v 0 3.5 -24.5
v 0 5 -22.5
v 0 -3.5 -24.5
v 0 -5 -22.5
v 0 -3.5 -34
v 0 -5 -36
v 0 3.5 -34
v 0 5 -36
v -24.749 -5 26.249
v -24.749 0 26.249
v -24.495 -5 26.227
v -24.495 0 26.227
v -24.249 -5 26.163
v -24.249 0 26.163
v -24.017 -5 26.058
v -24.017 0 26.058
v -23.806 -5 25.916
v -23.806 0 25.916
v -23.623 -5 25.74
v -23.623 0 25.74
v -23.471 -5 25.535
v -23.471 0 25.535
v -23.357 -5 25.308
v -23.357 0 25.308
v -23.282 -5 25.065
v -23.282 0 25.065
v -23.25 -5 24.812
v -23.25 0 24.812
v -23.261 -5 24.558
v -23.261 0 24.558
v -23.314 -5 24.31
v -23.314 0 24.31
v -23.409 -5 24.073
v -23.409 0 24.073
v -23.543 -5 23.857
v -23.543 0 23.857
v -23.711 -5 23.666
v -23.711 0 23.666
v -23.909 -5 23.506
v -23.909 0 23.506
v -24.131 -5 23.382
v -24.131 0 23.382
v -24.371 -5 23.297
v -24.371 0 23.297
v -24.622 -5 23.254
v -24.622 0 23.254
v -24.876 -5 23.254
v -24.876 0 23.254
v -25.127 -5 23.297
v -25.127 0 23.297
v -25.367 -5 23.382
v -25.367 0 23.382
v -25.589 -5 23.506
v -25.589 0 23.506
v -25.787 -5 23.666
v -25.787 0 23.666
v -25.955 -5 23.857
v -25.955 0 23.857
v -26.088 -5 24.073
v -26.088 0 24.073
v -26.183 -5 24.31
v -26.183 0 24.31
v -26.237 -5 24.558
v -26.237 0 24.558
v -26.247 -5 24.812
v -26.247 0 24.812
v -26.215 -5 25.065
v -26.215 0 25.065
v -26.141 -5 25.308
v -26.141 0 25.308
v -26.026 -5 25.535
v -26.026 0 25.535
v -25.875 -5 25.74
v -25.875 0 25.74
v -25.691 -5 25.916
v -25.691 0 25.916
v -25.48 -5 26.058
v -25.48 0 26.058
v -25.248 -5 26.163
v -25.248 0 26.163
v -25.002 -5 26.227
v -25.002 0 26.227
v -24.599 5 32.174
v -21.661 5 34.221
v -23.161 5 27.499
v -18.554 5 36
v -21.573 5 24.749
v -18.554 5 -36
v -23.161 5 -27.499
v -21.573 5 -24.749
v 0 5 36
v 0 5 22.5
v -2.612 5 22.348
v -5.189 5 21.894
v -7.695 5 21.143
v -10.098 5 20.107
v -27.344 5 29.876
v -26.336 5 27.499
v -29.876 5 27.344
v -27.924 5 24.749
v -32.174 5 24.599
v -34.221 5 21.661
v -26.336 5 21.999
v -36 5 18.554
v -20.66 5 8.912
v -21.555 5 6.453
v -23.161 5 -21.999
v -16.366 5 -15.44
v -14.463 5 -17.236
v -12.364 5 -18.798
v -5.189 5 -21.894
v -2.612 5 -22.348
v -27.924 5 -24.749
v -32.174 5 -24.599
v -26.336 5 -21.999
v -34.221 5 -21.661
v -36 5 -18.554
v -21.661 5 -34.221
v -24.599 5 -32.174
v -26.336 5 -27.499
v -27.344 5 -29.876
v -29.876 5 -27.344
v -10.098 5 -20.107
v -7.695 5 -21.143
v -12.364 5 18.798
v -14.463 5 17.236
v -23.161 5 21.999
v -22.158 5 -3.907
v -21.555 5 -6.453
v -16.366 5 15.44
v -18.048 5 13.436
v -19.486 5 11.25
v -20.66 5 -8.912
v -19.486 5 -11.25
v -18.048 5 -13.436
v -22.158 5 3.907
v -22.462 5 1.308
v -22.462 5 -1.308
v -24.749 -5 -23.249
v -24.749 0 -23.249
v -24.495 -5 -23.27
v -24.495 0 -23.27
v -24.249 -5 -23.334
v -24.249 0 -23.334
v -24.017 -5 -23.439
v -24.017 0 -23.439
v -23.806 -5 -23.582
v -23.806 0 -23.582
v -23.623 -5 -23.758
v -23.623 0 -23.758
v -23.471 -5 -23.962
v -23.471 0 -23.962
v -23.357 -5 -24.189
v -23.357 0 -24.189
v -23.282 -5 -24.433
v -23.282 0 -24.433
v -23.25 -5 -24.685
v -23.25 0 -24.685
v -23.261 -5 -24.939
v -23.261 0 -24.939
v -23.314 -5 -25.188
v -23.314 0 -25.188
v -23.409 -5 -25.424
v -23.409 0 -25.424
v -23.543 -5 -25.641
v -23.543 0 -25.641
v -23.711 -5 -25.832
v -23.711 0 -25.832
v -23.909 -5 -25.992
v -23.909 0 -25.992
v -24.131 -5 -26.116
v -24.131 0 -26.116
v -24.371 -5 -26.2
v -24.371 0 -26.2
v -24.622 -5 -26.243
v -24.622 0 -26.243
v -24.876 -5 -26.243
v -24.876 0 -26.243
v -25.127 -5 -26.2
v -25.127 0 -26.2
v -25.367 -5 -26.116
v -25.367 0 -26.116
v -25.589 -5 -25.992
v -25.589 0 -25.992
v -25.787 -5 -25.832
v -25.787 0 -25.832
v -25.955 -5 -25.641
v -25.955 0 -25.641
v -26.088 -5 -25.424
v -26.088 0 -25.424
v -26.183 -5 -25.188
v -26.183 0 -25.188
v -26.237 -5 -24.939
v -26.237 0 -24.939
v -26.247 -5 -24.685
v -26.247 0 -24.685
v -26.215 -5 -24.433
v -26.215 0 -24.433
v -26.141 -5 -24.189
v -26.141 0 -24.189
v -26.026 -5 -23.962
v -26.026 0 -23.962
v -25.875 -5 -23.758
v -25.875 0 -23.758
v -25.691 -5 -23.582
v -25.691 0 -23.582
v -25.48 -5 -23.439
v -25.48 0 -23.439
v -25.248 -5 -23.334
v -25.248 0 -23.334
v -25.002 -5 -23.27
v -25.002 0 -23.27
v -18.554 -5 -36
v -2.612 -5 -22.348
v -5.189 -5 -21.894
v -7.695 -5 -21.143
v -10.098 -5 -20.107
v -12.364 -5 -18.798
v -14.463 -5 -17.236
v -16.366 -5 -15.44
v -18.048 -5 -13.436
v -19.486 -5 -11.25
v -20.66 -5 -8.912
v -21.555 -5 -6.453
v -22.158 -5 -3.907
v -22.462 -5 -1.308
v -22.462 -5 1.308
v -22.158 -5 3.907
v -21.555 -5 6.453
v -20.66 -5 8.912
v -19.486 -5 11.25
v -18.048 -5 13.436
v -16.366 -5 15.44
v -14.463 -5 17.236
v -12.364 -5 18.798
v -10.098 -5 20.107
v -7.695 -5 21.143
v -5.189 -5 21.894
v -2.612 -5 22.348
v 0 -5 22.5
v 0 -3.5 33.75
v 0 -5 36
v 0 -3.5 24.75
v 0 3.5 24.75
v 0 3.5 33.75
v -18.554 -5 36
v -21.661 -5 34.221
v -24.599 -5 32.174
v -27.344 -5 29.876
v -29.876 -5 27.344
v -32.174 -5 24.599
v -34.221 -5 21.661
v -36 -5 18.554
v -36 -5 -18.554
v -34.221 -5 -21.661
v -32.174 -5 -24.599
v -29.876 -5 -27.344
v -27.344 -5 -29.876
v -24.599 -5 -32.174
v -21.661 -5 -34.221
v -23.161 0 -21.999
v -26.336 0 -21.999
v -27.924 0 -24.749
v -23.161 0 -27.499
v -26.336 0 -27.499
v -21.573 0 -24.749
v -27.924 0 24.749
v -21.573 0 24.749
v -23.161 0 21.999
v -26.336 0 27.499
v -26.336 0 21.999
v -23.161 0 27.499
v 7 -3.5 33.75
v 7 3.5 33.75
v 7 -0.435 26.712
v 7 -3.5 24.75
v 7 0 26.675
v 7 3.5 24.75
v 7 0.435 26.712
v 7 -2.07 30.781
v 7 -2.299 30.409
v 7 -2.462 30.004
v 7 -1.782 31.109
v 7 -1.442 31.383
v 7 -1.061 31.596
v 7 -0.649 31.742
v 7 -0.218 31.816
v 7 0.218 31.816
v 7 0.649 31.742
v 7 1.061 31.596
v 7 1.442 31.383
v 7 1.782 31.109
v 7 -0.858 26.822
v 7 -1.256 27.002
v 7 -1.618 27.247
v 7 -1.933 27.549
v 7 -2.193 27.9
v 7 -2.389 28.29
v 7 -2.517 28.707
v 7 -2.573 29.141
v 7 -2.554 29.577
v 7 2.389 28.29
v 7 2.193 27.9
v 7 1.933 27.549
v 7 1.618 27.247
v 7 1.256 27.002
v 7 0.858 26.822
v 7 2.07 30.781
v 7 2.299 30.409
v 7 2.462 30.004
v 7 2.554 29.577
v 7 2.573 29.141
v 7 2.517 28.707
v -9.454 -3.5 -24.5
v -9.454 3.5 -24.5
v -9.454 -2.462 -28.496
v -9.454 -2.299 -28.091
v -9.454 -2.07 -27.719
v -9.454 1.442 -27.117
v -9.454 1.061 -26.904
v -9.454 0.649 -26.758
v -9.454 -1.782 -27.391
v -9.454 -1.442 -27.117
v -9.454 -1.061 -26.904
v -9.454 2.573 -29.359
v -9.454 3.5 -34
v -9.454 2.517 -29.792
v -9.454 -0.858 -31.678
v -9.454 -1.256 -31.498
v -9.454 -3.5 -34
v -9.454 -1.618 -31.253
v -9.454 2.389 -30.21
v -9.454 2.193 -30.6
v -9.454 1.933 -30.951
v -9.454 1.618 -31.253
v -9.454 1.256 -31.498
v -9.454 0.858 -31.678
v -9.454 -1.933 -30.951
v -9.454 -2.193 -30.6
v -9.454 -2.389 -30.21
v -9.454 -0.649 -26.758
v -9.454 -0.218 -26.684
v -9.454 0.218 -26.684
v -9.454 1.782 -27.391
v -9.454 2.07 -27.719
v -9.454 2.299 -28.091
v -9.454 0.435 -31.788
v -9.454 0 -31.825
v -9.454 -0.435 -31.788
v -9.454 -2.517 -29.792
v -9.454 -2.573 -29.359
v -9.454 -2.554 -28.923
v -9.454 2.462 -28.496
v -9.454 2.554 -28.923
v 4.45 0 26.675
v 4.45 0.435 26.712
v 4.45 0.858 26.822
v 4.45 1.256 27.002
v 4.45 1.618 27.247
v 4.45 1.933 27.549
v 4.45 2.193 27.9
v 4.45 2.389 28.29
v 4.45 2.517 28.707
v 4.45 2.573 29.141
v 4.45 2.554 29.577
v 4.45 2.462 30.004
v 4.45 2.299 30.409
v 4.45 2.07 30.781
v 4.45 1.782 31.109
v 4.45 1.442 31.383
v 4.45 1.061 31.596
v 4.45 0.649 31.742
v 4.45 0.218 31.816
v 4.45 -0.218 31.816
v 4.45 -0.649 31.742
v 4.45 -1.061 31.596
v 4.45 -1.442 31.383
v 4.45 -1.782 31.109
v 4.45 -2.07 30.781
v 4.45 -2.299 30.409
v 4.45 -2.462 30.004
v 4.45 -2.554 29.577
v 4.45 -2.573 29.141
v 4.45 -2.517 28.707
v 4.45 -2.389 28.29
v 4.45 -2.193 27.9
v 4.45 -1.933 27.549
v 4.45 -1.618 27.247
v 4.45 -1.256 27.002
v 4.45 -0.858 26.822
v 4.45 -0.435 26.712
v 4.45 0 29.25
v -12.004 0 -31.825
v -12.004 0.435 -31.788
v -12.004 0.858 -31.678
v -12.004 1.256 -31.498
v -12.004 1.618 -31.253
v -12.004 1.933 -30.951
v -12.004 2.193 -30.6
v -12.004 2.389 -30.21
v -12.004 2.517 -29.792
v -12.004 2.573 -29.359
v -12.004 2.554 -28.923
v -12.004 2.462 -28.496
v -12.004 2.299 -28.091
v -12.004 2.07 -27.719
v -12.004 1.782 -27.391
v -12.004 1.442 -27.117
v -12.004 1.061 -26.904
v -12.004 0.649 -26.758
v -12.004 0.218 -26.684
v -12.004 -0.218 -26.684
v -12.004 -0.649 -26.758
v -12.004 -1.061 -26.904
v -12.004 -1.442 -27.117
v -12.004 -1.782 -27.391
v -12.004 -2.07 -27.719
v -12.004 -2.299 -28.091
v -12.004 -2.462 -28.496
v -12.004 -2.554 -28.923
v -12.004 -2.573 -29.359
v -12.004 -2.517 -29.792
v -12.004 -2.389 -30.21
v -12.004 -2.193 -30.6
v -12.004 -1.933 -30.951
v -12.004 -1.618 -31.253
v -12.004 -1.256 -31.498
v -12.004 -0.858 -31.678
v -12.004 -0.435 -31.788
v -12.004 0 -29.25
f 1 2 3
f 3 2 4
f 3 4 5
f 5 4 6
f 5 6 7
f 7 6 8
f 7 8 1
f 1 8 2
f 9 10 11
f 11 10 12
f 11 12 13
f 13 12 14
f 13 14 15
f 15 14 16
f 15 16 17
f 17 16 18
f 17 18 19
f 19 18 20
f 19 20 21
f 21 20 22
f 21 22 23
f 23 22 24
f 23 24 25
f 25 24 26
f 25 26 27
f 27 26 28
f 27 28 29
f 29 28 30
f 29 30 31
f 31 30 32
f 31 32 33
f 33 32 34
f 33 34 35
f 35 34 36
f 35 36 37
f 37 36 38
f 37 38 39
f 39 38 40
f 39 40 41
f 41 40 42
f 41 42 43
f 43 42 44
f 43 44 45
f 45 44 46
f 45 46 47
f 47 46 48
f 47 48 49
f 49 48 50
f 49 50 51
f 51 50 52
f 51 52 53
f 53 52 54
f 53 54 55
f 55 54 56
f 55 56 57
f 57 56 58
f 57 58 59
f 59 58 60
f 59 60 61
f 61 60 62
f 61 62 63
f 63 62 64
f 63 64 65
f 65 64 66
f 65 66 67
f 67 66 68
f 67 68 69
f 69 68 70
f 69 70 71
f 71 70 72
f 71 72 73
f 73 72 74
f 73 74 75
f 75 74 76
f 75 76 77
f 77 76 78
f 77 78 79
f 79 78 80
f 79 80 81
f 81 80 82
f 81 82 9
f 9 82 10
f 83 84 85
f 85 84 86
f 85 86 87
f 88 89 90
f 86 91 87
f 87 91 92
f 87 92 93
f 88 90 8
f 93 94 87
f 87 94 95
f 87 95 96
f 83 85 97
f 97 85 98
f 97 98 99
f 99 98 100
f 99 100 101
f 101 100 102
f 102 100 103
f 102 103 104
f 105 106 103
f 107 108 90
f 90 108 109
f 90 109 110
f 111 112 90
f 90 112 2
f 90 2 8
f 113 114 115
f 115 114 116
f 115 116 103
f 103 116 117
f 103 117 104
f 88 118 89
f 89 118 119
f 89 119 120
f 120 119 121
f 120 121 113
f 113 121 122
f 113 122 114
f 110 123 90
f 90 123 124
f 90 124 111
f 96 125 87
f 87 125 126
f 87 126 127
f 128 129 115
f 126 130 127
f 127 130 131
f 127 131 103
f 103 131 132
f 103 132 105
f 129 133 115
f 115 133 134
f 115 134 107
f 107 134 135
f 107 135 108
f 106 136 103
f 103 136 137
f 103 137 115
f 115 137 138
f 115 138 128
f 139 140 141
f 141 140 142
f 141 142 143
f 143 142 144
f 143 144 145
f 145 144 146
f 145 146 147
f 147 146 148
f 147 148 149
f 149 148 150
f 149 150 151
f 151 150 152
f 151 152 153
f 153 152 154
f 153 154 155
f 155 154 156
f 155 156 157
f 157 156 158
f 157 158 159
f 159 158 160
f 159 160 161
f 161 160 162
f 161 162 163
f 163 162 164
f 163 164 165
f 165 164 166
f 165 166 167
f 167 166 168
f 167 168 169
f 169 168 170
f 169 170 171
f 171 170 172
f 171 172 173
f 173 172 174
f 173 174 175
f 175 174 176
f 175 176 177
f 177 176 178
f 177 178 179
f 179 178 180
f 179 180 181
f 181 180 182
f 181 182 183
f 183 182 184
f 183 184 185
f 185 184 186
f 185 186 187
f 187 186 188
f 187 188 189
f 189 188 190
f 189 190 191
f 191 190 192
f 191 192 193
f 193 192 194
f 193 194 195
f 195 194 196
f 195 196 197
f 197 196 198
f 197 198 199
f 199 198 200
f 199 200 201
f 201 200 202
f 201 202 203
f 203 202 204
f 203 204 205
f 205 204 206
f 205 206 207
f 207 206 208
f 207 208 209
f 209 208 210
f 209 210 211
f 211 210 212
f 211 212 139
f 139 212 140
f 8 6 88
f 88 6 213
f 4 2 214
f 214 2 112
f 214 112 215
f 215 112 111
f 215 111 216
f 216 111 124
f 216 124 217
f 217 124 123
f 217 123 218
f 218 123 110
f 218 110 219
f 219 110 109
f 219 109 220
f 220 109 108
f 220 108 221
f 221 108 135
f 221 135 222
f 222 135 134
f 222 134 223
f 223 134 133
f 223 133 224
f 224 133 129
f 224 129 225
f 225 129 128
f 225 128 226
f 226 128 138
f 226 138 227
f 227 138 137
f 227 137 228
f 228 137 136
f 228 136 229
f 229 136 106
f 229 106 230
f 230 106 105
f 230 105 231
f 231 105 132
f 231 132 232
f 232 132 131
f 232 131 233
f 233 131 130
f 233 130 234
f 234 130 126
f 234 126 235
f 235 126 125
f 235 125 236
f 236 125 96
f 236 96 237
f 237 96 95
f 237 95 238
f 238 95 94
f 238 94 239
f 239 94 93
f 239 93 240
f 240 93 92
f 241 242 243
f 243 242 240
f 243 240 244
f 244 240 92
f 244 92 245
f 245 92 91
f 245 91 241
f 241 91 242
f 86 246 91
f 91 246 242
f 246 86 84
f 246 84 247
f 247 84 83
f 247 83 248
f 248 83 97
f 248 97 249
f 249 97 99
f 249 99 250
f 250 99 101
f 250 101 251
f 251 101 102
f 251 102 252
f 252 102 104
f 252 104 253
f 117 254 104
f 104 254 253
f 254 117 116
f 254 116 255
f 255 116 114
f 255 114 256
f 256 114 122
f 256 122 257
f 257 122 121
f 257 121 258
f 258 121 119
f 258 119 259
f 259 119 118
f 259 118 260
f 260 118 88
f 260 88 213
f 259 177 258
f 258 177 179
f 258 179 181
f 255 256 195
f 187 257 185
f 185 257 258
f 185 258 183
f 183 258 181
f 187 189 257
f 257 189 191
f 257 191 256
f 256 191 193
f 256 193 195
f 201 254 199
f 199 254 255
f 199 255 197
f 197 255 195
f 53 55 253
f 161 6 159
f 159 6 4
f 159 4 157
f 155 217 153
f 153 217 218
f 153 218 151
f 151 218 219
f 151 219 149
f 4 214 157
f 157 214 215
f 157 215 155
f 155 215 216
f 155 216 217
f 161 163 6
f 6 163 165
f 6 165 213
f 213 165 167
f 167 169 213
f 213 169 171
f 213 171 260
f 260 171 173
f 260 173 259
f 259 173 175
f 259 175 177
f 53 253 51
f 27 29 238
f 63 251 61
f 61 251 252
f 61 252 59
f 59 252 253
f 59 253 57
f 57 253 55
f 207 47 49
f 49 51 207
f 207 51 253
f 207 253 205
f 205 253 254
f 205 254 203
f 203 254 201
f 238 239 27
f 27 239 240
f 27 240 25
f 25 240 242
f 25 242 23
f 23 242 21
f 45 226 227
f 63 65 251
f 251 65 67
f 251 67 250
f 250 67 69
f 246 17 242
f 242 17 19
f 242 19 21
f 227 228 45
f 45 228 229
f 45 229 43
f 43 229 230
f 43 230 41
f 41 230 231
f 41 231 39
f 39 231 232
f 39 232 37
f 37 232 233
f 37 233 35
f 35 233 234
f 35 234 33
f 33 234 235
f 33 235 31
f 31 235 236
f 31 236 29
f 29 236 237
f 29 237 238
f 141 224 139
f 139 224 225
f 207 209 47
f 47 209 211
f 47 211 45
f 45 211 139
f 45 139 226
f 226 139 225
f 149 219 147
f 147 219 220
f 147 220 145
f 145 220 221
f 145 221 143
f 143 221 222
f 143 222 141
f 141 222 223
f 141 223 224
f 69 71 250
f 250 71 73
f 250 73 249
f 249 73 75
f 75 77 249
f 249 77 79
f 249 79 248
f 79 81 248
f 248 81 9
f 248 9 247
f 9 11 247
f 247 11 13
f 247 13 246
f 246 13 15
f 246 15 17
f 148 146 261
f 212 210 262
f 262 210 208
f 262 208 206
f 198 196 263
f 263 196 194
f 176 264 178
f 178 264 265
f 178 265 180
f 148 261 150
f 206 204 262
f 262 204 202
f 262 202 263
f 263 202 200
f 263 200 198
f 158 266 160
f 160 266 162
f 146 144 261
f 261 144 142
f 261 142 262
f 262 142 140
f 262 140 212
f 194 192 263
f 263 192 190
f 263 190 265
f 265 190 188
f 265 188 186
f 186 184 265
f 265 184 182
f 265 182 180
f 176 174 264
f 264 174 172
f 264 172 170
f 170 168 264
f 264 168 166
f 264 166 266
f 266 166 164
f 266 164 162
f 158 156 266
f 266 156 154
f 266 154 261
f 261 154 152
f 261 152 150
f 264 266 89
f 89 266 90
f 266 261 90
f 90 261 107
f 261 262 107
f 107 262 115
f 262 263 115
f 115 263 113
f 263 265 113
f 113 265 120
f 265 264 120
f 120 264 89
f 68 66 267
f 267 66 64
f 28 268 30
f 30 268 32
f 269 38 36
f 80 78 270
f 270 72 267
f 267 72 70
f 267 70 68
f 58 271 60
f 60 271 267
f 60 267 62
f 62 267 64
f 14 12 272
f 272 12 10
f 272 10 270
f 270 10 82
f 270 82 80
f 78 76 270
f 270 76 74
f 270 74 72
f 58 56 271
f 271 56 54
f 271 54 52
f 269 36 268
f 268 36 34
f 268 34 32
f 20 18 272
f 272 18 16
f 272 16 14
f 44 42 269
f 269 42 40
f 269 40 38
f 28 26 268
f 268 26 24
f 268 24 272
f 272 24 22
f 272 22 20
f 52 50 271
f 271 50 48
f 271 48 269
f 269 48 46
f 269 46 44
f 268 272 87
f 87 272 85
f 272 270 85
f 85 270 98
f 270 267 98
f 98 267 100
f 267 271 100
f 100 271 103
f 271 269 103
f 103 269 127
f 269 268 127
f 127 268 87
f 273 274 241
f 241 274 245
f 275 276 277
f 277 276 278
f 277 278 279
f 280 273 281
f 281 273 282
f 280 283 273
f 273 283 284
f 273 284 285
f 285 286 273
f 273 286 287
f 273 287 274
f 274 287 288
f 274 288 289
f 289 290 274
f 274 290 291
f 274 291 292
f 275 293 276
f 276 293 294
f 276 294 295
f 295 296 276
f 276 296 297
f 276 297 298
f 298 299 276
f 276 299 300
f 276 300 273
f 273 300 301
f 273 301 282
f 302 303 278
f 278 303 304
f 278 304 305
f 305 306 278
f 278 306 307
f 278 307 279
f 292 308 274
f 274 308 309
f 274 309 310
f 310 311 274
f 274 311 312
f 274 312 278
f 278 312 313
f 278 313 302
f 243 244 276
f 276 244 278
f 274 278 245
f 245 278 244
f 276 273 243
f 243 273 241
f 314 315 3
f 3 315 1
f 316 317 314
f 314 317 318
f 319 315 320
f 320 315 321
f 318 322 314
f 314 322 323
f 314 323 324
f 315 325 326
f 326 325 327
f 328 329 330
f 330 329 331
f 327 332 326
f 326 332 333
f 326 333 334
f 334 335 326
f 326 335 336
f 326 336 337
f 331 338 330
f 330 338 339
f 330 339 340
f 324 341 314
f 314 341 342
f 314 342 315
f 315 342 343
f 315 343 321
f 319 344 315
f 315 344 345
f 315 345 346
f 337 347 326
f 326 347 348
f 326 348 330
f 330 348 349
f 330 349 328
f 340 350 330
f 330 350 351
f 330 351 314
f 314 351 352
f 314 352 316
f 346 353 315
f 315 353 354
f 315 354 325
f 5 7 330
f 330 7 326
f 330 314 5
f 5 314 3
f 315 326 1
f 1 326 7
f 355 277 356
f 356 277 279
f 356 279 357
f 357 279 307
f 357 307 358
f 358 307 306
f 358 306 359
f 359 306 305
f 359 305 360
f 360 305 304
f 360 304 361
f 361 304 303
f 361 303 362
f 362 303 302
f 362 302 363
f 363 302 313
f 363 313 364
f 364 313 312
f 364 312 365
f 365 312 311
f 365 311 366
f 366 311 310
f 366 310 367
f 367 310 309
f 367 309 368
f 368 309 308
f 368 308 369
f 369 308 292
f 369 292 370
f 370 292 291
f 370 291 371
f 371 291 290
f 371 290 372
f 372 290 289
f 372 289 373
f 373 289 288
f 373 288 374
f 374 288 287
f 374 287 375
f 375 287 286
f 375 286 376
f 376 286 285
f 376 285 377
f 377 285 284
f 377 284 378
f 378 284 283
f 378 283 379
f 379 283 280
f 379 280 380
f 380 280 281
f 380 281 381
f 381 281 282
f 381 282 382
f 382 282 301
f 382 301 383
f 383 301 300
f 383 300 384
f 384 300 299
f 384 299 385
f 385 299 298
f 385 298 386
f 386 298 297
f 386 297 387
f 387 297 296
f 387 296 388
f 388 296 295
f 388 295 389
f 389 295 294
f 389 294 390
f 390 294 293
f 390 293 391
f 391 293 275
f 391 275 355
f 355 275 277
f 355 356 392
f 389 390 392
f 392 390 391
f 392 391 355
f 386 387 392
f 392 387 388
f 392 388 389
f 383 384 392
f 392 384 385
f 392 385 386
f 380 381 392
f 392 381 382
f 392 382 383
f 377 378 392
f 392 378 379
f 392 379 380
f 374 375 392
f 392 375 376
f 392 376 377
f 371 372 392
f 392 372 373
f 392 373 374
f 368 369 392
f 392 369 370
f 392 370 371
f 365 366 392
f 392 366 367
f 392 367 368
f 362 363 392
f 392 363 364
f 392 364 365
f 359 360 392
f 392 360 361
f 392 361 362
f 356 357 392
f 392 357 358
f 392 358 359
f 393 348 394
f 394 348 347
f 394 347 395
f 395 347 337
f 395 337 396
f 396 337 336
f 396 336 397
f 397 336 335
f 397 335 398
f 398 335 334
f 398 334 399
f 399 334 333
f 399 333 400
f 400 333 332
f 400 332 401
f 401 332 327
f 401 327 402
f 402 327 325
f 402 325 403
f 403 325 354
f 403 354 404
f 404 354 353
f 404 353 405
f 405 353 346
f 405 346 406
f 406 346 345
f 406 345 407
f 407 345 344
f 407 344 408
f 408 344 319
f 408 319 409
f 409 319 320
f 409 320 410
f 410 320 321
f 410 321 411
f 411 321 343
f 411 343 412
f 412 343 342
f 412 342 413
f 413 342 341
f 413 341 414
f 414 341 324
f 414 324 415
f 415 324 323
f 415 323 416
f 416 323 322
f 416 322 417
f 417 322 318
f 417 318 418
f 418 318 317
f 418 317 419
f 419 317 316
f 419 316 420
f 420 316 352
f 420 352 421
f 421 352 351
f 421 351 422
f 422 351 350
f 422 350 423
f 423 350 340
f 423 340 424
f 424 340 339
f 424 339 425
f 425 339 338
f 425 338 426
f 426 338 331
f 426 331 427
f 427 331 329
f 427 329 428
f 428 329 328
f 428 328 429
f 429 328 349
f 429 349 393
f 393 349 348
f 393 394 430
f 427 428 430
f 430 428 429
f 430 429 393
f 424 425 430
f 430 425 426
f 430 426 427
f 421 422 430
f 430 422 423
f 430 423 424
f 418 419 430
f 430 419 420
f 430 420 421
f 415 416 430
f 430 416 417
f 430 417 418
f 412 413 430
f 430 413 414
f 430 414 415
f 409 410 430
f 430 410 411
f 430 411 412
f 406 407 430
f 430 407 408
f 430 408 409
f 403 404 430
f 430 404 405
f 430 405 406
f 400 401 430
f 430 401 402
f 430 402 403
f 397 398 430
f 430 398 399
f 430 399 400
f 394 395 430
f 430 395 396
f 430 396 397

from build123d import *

# Parameters (mm, degrees)
BOSS_EXTRUDE1_DEPTH      = 5
BOSS_EXTRUDE1_DEPTH_BACK = 5
SKETCH1_R                = 1.5
CUT_EXTRUDE1_DEPTH       = 5
BOSS_EXTRUDE2_DEPTH      = 3.5
BOSS_EXTRUDE2_DEPTH_BACK = 3.5
SKETCH3_W                = 7
SKETCH3_H                = 9
CUT_EXTRUDE2_DEPTH       = 3.5
CUT_EXTRUDE2_DEPTH_BACK  = 3.5
SKETCH4_W                = 9.454278837
SKETCH4_H                = 9.5
SKETCH5_R                = 2.575
CUT_EXTRUDE3_DEPTH       = 2.55
SKETCH6_R                = 2.575
CUT_EXTRUDE4_DEPTH       = 2.55


with BuildPart() as part:
    # Sketch1 → Boss-Extrude1 (new, two sides: drawn at the far end of the back side and taken through both)
    with BuildSketch(Plane(origin=(0, 0, 0), x_dir=(1, 0, 0), z_dir=(0, 1, 0)).offset(-BOSS_EXTRUDE1_DEPTH_BACK)):
        with BuildLine():
            Line((0, 22.5), (0, 36))
            Line((0, 36), (-18.553975315, 36))
            ThreePointArc((-18.553975315, 36), (-28.637824638, 28.637824638), (-36, 18.553975315))
            Line((-36, 18.553975315), (-36, -18.553975315))
            ThreePointArc((-36, -18.553975315), (-28.637824638, -28.637824638), (-18.553975315, -36))
            Line((-18.553975315, -36), (0, -36))
            Line((0, -36), (0, -22.5))
            ThreePointArc((0, -22.5), (-22.5, 0), (0, 22.5))
        make_face()
        with Locations((-24.748737342, -24.748737342)):
            Circle(SKETCH1_R, mode=Mode.SUBTRACT)
        with Locations((-24.748737342, 24.748737342)):
            Circle(SKETCH1_R, mode=Mode.SUBTRACT)
    extrude(amount=BOSS_EXTRUDE1_DEPTH + BOSS_EXTRUDE1_DEPTH_BACK)

    # Sketch2 → Cut-Extrude1 (cut)
    with BuildSketch(Plane(origin=(0, 5, 0), x_dir=(1, 0, 0), z_dir=(0, 1, 0))):
        Polygon((-23.161024101, 27.498737342), (-26.336450582, 27.498737342), (-27.924163822, 24.748737342), (-26.336450582, 21.998737342), (-23.161024101, 21.998737342), (-21.573310861, 24.748737342), align=None)
    cut_extrude1 = extrude(amount=-CUT_EXTRUDE1_DEPTH, mode=Mode.SUBTRACT)

    # Mirror1: Cut-Extrude1 across plane
    add(cut_extrude1.mirror(Plane.XY), mode=Mode.SUBTRACT)

    # Sketch3 → Boss-Extrude2 (add, two sides: drawn at the far end of the back side and taken through both)
    with BuildSketch(Plane(origin=(0, 0, 0), x_dir=(1, 0, 0), z_dir=(0, 1, 0)).offset(-BOSS_EXTRUDE2_DEPTH_BACK)):
        with Locations((3.5, -29.25)):
            Rectangle(SKETCH3_W, SKETCH3_H)
    extrude(amount=BOSS_EXTRUDE2_DEPTH + BOSS_EXTRUDE2_DEPTH_BACK)

    # Sketch4 → Cut-Extrude2 (cut, two sides: drawn at the far end of the back side and taken through both)
    with BuildSketch(Plane.XZ.offset(-CUT_EXTRUDE2_DEPTH_BACK)):
        with Locations((-4.727139419, -29.25)):
            Rectangle(SKETCH4_W, SKETCH4_H)
    extrude(amount=CUT_EXTRUDE2_DEPTH + CUT_EXTRUDE2_DEPTH_BACK, mode=Mode.SUBTRACT)

    # Sketch5 → Cut-Extrude3 (cut)
    with BuildSketch(Plane(origin=(7, 0, 0), x_dir=(0, 0, -1), z_dir=(1, 0, 0))):
        with Locations((-29.25, 0)):
            Circle(SKETCH5_R)
    extrude(amount=-CUT_EXTRUDE3_DEPTH, mode=Mode.SUBTRACT)

    # Sketch6 → Cut-Extrude4 (cut)
    with BuildSketch(Plane(origin=(-9.454278837, 0, 0), x_dir=(0, 0, -1), z_dir=(1, 0, 0))):
        with Locations((29.25, 0)):
            Circle(SKETCH6_R)
    extrude(amount=-CUT_EXTRUDE4_DEPTH, mode=Mode.SUBTRACT)


solid = part.part
